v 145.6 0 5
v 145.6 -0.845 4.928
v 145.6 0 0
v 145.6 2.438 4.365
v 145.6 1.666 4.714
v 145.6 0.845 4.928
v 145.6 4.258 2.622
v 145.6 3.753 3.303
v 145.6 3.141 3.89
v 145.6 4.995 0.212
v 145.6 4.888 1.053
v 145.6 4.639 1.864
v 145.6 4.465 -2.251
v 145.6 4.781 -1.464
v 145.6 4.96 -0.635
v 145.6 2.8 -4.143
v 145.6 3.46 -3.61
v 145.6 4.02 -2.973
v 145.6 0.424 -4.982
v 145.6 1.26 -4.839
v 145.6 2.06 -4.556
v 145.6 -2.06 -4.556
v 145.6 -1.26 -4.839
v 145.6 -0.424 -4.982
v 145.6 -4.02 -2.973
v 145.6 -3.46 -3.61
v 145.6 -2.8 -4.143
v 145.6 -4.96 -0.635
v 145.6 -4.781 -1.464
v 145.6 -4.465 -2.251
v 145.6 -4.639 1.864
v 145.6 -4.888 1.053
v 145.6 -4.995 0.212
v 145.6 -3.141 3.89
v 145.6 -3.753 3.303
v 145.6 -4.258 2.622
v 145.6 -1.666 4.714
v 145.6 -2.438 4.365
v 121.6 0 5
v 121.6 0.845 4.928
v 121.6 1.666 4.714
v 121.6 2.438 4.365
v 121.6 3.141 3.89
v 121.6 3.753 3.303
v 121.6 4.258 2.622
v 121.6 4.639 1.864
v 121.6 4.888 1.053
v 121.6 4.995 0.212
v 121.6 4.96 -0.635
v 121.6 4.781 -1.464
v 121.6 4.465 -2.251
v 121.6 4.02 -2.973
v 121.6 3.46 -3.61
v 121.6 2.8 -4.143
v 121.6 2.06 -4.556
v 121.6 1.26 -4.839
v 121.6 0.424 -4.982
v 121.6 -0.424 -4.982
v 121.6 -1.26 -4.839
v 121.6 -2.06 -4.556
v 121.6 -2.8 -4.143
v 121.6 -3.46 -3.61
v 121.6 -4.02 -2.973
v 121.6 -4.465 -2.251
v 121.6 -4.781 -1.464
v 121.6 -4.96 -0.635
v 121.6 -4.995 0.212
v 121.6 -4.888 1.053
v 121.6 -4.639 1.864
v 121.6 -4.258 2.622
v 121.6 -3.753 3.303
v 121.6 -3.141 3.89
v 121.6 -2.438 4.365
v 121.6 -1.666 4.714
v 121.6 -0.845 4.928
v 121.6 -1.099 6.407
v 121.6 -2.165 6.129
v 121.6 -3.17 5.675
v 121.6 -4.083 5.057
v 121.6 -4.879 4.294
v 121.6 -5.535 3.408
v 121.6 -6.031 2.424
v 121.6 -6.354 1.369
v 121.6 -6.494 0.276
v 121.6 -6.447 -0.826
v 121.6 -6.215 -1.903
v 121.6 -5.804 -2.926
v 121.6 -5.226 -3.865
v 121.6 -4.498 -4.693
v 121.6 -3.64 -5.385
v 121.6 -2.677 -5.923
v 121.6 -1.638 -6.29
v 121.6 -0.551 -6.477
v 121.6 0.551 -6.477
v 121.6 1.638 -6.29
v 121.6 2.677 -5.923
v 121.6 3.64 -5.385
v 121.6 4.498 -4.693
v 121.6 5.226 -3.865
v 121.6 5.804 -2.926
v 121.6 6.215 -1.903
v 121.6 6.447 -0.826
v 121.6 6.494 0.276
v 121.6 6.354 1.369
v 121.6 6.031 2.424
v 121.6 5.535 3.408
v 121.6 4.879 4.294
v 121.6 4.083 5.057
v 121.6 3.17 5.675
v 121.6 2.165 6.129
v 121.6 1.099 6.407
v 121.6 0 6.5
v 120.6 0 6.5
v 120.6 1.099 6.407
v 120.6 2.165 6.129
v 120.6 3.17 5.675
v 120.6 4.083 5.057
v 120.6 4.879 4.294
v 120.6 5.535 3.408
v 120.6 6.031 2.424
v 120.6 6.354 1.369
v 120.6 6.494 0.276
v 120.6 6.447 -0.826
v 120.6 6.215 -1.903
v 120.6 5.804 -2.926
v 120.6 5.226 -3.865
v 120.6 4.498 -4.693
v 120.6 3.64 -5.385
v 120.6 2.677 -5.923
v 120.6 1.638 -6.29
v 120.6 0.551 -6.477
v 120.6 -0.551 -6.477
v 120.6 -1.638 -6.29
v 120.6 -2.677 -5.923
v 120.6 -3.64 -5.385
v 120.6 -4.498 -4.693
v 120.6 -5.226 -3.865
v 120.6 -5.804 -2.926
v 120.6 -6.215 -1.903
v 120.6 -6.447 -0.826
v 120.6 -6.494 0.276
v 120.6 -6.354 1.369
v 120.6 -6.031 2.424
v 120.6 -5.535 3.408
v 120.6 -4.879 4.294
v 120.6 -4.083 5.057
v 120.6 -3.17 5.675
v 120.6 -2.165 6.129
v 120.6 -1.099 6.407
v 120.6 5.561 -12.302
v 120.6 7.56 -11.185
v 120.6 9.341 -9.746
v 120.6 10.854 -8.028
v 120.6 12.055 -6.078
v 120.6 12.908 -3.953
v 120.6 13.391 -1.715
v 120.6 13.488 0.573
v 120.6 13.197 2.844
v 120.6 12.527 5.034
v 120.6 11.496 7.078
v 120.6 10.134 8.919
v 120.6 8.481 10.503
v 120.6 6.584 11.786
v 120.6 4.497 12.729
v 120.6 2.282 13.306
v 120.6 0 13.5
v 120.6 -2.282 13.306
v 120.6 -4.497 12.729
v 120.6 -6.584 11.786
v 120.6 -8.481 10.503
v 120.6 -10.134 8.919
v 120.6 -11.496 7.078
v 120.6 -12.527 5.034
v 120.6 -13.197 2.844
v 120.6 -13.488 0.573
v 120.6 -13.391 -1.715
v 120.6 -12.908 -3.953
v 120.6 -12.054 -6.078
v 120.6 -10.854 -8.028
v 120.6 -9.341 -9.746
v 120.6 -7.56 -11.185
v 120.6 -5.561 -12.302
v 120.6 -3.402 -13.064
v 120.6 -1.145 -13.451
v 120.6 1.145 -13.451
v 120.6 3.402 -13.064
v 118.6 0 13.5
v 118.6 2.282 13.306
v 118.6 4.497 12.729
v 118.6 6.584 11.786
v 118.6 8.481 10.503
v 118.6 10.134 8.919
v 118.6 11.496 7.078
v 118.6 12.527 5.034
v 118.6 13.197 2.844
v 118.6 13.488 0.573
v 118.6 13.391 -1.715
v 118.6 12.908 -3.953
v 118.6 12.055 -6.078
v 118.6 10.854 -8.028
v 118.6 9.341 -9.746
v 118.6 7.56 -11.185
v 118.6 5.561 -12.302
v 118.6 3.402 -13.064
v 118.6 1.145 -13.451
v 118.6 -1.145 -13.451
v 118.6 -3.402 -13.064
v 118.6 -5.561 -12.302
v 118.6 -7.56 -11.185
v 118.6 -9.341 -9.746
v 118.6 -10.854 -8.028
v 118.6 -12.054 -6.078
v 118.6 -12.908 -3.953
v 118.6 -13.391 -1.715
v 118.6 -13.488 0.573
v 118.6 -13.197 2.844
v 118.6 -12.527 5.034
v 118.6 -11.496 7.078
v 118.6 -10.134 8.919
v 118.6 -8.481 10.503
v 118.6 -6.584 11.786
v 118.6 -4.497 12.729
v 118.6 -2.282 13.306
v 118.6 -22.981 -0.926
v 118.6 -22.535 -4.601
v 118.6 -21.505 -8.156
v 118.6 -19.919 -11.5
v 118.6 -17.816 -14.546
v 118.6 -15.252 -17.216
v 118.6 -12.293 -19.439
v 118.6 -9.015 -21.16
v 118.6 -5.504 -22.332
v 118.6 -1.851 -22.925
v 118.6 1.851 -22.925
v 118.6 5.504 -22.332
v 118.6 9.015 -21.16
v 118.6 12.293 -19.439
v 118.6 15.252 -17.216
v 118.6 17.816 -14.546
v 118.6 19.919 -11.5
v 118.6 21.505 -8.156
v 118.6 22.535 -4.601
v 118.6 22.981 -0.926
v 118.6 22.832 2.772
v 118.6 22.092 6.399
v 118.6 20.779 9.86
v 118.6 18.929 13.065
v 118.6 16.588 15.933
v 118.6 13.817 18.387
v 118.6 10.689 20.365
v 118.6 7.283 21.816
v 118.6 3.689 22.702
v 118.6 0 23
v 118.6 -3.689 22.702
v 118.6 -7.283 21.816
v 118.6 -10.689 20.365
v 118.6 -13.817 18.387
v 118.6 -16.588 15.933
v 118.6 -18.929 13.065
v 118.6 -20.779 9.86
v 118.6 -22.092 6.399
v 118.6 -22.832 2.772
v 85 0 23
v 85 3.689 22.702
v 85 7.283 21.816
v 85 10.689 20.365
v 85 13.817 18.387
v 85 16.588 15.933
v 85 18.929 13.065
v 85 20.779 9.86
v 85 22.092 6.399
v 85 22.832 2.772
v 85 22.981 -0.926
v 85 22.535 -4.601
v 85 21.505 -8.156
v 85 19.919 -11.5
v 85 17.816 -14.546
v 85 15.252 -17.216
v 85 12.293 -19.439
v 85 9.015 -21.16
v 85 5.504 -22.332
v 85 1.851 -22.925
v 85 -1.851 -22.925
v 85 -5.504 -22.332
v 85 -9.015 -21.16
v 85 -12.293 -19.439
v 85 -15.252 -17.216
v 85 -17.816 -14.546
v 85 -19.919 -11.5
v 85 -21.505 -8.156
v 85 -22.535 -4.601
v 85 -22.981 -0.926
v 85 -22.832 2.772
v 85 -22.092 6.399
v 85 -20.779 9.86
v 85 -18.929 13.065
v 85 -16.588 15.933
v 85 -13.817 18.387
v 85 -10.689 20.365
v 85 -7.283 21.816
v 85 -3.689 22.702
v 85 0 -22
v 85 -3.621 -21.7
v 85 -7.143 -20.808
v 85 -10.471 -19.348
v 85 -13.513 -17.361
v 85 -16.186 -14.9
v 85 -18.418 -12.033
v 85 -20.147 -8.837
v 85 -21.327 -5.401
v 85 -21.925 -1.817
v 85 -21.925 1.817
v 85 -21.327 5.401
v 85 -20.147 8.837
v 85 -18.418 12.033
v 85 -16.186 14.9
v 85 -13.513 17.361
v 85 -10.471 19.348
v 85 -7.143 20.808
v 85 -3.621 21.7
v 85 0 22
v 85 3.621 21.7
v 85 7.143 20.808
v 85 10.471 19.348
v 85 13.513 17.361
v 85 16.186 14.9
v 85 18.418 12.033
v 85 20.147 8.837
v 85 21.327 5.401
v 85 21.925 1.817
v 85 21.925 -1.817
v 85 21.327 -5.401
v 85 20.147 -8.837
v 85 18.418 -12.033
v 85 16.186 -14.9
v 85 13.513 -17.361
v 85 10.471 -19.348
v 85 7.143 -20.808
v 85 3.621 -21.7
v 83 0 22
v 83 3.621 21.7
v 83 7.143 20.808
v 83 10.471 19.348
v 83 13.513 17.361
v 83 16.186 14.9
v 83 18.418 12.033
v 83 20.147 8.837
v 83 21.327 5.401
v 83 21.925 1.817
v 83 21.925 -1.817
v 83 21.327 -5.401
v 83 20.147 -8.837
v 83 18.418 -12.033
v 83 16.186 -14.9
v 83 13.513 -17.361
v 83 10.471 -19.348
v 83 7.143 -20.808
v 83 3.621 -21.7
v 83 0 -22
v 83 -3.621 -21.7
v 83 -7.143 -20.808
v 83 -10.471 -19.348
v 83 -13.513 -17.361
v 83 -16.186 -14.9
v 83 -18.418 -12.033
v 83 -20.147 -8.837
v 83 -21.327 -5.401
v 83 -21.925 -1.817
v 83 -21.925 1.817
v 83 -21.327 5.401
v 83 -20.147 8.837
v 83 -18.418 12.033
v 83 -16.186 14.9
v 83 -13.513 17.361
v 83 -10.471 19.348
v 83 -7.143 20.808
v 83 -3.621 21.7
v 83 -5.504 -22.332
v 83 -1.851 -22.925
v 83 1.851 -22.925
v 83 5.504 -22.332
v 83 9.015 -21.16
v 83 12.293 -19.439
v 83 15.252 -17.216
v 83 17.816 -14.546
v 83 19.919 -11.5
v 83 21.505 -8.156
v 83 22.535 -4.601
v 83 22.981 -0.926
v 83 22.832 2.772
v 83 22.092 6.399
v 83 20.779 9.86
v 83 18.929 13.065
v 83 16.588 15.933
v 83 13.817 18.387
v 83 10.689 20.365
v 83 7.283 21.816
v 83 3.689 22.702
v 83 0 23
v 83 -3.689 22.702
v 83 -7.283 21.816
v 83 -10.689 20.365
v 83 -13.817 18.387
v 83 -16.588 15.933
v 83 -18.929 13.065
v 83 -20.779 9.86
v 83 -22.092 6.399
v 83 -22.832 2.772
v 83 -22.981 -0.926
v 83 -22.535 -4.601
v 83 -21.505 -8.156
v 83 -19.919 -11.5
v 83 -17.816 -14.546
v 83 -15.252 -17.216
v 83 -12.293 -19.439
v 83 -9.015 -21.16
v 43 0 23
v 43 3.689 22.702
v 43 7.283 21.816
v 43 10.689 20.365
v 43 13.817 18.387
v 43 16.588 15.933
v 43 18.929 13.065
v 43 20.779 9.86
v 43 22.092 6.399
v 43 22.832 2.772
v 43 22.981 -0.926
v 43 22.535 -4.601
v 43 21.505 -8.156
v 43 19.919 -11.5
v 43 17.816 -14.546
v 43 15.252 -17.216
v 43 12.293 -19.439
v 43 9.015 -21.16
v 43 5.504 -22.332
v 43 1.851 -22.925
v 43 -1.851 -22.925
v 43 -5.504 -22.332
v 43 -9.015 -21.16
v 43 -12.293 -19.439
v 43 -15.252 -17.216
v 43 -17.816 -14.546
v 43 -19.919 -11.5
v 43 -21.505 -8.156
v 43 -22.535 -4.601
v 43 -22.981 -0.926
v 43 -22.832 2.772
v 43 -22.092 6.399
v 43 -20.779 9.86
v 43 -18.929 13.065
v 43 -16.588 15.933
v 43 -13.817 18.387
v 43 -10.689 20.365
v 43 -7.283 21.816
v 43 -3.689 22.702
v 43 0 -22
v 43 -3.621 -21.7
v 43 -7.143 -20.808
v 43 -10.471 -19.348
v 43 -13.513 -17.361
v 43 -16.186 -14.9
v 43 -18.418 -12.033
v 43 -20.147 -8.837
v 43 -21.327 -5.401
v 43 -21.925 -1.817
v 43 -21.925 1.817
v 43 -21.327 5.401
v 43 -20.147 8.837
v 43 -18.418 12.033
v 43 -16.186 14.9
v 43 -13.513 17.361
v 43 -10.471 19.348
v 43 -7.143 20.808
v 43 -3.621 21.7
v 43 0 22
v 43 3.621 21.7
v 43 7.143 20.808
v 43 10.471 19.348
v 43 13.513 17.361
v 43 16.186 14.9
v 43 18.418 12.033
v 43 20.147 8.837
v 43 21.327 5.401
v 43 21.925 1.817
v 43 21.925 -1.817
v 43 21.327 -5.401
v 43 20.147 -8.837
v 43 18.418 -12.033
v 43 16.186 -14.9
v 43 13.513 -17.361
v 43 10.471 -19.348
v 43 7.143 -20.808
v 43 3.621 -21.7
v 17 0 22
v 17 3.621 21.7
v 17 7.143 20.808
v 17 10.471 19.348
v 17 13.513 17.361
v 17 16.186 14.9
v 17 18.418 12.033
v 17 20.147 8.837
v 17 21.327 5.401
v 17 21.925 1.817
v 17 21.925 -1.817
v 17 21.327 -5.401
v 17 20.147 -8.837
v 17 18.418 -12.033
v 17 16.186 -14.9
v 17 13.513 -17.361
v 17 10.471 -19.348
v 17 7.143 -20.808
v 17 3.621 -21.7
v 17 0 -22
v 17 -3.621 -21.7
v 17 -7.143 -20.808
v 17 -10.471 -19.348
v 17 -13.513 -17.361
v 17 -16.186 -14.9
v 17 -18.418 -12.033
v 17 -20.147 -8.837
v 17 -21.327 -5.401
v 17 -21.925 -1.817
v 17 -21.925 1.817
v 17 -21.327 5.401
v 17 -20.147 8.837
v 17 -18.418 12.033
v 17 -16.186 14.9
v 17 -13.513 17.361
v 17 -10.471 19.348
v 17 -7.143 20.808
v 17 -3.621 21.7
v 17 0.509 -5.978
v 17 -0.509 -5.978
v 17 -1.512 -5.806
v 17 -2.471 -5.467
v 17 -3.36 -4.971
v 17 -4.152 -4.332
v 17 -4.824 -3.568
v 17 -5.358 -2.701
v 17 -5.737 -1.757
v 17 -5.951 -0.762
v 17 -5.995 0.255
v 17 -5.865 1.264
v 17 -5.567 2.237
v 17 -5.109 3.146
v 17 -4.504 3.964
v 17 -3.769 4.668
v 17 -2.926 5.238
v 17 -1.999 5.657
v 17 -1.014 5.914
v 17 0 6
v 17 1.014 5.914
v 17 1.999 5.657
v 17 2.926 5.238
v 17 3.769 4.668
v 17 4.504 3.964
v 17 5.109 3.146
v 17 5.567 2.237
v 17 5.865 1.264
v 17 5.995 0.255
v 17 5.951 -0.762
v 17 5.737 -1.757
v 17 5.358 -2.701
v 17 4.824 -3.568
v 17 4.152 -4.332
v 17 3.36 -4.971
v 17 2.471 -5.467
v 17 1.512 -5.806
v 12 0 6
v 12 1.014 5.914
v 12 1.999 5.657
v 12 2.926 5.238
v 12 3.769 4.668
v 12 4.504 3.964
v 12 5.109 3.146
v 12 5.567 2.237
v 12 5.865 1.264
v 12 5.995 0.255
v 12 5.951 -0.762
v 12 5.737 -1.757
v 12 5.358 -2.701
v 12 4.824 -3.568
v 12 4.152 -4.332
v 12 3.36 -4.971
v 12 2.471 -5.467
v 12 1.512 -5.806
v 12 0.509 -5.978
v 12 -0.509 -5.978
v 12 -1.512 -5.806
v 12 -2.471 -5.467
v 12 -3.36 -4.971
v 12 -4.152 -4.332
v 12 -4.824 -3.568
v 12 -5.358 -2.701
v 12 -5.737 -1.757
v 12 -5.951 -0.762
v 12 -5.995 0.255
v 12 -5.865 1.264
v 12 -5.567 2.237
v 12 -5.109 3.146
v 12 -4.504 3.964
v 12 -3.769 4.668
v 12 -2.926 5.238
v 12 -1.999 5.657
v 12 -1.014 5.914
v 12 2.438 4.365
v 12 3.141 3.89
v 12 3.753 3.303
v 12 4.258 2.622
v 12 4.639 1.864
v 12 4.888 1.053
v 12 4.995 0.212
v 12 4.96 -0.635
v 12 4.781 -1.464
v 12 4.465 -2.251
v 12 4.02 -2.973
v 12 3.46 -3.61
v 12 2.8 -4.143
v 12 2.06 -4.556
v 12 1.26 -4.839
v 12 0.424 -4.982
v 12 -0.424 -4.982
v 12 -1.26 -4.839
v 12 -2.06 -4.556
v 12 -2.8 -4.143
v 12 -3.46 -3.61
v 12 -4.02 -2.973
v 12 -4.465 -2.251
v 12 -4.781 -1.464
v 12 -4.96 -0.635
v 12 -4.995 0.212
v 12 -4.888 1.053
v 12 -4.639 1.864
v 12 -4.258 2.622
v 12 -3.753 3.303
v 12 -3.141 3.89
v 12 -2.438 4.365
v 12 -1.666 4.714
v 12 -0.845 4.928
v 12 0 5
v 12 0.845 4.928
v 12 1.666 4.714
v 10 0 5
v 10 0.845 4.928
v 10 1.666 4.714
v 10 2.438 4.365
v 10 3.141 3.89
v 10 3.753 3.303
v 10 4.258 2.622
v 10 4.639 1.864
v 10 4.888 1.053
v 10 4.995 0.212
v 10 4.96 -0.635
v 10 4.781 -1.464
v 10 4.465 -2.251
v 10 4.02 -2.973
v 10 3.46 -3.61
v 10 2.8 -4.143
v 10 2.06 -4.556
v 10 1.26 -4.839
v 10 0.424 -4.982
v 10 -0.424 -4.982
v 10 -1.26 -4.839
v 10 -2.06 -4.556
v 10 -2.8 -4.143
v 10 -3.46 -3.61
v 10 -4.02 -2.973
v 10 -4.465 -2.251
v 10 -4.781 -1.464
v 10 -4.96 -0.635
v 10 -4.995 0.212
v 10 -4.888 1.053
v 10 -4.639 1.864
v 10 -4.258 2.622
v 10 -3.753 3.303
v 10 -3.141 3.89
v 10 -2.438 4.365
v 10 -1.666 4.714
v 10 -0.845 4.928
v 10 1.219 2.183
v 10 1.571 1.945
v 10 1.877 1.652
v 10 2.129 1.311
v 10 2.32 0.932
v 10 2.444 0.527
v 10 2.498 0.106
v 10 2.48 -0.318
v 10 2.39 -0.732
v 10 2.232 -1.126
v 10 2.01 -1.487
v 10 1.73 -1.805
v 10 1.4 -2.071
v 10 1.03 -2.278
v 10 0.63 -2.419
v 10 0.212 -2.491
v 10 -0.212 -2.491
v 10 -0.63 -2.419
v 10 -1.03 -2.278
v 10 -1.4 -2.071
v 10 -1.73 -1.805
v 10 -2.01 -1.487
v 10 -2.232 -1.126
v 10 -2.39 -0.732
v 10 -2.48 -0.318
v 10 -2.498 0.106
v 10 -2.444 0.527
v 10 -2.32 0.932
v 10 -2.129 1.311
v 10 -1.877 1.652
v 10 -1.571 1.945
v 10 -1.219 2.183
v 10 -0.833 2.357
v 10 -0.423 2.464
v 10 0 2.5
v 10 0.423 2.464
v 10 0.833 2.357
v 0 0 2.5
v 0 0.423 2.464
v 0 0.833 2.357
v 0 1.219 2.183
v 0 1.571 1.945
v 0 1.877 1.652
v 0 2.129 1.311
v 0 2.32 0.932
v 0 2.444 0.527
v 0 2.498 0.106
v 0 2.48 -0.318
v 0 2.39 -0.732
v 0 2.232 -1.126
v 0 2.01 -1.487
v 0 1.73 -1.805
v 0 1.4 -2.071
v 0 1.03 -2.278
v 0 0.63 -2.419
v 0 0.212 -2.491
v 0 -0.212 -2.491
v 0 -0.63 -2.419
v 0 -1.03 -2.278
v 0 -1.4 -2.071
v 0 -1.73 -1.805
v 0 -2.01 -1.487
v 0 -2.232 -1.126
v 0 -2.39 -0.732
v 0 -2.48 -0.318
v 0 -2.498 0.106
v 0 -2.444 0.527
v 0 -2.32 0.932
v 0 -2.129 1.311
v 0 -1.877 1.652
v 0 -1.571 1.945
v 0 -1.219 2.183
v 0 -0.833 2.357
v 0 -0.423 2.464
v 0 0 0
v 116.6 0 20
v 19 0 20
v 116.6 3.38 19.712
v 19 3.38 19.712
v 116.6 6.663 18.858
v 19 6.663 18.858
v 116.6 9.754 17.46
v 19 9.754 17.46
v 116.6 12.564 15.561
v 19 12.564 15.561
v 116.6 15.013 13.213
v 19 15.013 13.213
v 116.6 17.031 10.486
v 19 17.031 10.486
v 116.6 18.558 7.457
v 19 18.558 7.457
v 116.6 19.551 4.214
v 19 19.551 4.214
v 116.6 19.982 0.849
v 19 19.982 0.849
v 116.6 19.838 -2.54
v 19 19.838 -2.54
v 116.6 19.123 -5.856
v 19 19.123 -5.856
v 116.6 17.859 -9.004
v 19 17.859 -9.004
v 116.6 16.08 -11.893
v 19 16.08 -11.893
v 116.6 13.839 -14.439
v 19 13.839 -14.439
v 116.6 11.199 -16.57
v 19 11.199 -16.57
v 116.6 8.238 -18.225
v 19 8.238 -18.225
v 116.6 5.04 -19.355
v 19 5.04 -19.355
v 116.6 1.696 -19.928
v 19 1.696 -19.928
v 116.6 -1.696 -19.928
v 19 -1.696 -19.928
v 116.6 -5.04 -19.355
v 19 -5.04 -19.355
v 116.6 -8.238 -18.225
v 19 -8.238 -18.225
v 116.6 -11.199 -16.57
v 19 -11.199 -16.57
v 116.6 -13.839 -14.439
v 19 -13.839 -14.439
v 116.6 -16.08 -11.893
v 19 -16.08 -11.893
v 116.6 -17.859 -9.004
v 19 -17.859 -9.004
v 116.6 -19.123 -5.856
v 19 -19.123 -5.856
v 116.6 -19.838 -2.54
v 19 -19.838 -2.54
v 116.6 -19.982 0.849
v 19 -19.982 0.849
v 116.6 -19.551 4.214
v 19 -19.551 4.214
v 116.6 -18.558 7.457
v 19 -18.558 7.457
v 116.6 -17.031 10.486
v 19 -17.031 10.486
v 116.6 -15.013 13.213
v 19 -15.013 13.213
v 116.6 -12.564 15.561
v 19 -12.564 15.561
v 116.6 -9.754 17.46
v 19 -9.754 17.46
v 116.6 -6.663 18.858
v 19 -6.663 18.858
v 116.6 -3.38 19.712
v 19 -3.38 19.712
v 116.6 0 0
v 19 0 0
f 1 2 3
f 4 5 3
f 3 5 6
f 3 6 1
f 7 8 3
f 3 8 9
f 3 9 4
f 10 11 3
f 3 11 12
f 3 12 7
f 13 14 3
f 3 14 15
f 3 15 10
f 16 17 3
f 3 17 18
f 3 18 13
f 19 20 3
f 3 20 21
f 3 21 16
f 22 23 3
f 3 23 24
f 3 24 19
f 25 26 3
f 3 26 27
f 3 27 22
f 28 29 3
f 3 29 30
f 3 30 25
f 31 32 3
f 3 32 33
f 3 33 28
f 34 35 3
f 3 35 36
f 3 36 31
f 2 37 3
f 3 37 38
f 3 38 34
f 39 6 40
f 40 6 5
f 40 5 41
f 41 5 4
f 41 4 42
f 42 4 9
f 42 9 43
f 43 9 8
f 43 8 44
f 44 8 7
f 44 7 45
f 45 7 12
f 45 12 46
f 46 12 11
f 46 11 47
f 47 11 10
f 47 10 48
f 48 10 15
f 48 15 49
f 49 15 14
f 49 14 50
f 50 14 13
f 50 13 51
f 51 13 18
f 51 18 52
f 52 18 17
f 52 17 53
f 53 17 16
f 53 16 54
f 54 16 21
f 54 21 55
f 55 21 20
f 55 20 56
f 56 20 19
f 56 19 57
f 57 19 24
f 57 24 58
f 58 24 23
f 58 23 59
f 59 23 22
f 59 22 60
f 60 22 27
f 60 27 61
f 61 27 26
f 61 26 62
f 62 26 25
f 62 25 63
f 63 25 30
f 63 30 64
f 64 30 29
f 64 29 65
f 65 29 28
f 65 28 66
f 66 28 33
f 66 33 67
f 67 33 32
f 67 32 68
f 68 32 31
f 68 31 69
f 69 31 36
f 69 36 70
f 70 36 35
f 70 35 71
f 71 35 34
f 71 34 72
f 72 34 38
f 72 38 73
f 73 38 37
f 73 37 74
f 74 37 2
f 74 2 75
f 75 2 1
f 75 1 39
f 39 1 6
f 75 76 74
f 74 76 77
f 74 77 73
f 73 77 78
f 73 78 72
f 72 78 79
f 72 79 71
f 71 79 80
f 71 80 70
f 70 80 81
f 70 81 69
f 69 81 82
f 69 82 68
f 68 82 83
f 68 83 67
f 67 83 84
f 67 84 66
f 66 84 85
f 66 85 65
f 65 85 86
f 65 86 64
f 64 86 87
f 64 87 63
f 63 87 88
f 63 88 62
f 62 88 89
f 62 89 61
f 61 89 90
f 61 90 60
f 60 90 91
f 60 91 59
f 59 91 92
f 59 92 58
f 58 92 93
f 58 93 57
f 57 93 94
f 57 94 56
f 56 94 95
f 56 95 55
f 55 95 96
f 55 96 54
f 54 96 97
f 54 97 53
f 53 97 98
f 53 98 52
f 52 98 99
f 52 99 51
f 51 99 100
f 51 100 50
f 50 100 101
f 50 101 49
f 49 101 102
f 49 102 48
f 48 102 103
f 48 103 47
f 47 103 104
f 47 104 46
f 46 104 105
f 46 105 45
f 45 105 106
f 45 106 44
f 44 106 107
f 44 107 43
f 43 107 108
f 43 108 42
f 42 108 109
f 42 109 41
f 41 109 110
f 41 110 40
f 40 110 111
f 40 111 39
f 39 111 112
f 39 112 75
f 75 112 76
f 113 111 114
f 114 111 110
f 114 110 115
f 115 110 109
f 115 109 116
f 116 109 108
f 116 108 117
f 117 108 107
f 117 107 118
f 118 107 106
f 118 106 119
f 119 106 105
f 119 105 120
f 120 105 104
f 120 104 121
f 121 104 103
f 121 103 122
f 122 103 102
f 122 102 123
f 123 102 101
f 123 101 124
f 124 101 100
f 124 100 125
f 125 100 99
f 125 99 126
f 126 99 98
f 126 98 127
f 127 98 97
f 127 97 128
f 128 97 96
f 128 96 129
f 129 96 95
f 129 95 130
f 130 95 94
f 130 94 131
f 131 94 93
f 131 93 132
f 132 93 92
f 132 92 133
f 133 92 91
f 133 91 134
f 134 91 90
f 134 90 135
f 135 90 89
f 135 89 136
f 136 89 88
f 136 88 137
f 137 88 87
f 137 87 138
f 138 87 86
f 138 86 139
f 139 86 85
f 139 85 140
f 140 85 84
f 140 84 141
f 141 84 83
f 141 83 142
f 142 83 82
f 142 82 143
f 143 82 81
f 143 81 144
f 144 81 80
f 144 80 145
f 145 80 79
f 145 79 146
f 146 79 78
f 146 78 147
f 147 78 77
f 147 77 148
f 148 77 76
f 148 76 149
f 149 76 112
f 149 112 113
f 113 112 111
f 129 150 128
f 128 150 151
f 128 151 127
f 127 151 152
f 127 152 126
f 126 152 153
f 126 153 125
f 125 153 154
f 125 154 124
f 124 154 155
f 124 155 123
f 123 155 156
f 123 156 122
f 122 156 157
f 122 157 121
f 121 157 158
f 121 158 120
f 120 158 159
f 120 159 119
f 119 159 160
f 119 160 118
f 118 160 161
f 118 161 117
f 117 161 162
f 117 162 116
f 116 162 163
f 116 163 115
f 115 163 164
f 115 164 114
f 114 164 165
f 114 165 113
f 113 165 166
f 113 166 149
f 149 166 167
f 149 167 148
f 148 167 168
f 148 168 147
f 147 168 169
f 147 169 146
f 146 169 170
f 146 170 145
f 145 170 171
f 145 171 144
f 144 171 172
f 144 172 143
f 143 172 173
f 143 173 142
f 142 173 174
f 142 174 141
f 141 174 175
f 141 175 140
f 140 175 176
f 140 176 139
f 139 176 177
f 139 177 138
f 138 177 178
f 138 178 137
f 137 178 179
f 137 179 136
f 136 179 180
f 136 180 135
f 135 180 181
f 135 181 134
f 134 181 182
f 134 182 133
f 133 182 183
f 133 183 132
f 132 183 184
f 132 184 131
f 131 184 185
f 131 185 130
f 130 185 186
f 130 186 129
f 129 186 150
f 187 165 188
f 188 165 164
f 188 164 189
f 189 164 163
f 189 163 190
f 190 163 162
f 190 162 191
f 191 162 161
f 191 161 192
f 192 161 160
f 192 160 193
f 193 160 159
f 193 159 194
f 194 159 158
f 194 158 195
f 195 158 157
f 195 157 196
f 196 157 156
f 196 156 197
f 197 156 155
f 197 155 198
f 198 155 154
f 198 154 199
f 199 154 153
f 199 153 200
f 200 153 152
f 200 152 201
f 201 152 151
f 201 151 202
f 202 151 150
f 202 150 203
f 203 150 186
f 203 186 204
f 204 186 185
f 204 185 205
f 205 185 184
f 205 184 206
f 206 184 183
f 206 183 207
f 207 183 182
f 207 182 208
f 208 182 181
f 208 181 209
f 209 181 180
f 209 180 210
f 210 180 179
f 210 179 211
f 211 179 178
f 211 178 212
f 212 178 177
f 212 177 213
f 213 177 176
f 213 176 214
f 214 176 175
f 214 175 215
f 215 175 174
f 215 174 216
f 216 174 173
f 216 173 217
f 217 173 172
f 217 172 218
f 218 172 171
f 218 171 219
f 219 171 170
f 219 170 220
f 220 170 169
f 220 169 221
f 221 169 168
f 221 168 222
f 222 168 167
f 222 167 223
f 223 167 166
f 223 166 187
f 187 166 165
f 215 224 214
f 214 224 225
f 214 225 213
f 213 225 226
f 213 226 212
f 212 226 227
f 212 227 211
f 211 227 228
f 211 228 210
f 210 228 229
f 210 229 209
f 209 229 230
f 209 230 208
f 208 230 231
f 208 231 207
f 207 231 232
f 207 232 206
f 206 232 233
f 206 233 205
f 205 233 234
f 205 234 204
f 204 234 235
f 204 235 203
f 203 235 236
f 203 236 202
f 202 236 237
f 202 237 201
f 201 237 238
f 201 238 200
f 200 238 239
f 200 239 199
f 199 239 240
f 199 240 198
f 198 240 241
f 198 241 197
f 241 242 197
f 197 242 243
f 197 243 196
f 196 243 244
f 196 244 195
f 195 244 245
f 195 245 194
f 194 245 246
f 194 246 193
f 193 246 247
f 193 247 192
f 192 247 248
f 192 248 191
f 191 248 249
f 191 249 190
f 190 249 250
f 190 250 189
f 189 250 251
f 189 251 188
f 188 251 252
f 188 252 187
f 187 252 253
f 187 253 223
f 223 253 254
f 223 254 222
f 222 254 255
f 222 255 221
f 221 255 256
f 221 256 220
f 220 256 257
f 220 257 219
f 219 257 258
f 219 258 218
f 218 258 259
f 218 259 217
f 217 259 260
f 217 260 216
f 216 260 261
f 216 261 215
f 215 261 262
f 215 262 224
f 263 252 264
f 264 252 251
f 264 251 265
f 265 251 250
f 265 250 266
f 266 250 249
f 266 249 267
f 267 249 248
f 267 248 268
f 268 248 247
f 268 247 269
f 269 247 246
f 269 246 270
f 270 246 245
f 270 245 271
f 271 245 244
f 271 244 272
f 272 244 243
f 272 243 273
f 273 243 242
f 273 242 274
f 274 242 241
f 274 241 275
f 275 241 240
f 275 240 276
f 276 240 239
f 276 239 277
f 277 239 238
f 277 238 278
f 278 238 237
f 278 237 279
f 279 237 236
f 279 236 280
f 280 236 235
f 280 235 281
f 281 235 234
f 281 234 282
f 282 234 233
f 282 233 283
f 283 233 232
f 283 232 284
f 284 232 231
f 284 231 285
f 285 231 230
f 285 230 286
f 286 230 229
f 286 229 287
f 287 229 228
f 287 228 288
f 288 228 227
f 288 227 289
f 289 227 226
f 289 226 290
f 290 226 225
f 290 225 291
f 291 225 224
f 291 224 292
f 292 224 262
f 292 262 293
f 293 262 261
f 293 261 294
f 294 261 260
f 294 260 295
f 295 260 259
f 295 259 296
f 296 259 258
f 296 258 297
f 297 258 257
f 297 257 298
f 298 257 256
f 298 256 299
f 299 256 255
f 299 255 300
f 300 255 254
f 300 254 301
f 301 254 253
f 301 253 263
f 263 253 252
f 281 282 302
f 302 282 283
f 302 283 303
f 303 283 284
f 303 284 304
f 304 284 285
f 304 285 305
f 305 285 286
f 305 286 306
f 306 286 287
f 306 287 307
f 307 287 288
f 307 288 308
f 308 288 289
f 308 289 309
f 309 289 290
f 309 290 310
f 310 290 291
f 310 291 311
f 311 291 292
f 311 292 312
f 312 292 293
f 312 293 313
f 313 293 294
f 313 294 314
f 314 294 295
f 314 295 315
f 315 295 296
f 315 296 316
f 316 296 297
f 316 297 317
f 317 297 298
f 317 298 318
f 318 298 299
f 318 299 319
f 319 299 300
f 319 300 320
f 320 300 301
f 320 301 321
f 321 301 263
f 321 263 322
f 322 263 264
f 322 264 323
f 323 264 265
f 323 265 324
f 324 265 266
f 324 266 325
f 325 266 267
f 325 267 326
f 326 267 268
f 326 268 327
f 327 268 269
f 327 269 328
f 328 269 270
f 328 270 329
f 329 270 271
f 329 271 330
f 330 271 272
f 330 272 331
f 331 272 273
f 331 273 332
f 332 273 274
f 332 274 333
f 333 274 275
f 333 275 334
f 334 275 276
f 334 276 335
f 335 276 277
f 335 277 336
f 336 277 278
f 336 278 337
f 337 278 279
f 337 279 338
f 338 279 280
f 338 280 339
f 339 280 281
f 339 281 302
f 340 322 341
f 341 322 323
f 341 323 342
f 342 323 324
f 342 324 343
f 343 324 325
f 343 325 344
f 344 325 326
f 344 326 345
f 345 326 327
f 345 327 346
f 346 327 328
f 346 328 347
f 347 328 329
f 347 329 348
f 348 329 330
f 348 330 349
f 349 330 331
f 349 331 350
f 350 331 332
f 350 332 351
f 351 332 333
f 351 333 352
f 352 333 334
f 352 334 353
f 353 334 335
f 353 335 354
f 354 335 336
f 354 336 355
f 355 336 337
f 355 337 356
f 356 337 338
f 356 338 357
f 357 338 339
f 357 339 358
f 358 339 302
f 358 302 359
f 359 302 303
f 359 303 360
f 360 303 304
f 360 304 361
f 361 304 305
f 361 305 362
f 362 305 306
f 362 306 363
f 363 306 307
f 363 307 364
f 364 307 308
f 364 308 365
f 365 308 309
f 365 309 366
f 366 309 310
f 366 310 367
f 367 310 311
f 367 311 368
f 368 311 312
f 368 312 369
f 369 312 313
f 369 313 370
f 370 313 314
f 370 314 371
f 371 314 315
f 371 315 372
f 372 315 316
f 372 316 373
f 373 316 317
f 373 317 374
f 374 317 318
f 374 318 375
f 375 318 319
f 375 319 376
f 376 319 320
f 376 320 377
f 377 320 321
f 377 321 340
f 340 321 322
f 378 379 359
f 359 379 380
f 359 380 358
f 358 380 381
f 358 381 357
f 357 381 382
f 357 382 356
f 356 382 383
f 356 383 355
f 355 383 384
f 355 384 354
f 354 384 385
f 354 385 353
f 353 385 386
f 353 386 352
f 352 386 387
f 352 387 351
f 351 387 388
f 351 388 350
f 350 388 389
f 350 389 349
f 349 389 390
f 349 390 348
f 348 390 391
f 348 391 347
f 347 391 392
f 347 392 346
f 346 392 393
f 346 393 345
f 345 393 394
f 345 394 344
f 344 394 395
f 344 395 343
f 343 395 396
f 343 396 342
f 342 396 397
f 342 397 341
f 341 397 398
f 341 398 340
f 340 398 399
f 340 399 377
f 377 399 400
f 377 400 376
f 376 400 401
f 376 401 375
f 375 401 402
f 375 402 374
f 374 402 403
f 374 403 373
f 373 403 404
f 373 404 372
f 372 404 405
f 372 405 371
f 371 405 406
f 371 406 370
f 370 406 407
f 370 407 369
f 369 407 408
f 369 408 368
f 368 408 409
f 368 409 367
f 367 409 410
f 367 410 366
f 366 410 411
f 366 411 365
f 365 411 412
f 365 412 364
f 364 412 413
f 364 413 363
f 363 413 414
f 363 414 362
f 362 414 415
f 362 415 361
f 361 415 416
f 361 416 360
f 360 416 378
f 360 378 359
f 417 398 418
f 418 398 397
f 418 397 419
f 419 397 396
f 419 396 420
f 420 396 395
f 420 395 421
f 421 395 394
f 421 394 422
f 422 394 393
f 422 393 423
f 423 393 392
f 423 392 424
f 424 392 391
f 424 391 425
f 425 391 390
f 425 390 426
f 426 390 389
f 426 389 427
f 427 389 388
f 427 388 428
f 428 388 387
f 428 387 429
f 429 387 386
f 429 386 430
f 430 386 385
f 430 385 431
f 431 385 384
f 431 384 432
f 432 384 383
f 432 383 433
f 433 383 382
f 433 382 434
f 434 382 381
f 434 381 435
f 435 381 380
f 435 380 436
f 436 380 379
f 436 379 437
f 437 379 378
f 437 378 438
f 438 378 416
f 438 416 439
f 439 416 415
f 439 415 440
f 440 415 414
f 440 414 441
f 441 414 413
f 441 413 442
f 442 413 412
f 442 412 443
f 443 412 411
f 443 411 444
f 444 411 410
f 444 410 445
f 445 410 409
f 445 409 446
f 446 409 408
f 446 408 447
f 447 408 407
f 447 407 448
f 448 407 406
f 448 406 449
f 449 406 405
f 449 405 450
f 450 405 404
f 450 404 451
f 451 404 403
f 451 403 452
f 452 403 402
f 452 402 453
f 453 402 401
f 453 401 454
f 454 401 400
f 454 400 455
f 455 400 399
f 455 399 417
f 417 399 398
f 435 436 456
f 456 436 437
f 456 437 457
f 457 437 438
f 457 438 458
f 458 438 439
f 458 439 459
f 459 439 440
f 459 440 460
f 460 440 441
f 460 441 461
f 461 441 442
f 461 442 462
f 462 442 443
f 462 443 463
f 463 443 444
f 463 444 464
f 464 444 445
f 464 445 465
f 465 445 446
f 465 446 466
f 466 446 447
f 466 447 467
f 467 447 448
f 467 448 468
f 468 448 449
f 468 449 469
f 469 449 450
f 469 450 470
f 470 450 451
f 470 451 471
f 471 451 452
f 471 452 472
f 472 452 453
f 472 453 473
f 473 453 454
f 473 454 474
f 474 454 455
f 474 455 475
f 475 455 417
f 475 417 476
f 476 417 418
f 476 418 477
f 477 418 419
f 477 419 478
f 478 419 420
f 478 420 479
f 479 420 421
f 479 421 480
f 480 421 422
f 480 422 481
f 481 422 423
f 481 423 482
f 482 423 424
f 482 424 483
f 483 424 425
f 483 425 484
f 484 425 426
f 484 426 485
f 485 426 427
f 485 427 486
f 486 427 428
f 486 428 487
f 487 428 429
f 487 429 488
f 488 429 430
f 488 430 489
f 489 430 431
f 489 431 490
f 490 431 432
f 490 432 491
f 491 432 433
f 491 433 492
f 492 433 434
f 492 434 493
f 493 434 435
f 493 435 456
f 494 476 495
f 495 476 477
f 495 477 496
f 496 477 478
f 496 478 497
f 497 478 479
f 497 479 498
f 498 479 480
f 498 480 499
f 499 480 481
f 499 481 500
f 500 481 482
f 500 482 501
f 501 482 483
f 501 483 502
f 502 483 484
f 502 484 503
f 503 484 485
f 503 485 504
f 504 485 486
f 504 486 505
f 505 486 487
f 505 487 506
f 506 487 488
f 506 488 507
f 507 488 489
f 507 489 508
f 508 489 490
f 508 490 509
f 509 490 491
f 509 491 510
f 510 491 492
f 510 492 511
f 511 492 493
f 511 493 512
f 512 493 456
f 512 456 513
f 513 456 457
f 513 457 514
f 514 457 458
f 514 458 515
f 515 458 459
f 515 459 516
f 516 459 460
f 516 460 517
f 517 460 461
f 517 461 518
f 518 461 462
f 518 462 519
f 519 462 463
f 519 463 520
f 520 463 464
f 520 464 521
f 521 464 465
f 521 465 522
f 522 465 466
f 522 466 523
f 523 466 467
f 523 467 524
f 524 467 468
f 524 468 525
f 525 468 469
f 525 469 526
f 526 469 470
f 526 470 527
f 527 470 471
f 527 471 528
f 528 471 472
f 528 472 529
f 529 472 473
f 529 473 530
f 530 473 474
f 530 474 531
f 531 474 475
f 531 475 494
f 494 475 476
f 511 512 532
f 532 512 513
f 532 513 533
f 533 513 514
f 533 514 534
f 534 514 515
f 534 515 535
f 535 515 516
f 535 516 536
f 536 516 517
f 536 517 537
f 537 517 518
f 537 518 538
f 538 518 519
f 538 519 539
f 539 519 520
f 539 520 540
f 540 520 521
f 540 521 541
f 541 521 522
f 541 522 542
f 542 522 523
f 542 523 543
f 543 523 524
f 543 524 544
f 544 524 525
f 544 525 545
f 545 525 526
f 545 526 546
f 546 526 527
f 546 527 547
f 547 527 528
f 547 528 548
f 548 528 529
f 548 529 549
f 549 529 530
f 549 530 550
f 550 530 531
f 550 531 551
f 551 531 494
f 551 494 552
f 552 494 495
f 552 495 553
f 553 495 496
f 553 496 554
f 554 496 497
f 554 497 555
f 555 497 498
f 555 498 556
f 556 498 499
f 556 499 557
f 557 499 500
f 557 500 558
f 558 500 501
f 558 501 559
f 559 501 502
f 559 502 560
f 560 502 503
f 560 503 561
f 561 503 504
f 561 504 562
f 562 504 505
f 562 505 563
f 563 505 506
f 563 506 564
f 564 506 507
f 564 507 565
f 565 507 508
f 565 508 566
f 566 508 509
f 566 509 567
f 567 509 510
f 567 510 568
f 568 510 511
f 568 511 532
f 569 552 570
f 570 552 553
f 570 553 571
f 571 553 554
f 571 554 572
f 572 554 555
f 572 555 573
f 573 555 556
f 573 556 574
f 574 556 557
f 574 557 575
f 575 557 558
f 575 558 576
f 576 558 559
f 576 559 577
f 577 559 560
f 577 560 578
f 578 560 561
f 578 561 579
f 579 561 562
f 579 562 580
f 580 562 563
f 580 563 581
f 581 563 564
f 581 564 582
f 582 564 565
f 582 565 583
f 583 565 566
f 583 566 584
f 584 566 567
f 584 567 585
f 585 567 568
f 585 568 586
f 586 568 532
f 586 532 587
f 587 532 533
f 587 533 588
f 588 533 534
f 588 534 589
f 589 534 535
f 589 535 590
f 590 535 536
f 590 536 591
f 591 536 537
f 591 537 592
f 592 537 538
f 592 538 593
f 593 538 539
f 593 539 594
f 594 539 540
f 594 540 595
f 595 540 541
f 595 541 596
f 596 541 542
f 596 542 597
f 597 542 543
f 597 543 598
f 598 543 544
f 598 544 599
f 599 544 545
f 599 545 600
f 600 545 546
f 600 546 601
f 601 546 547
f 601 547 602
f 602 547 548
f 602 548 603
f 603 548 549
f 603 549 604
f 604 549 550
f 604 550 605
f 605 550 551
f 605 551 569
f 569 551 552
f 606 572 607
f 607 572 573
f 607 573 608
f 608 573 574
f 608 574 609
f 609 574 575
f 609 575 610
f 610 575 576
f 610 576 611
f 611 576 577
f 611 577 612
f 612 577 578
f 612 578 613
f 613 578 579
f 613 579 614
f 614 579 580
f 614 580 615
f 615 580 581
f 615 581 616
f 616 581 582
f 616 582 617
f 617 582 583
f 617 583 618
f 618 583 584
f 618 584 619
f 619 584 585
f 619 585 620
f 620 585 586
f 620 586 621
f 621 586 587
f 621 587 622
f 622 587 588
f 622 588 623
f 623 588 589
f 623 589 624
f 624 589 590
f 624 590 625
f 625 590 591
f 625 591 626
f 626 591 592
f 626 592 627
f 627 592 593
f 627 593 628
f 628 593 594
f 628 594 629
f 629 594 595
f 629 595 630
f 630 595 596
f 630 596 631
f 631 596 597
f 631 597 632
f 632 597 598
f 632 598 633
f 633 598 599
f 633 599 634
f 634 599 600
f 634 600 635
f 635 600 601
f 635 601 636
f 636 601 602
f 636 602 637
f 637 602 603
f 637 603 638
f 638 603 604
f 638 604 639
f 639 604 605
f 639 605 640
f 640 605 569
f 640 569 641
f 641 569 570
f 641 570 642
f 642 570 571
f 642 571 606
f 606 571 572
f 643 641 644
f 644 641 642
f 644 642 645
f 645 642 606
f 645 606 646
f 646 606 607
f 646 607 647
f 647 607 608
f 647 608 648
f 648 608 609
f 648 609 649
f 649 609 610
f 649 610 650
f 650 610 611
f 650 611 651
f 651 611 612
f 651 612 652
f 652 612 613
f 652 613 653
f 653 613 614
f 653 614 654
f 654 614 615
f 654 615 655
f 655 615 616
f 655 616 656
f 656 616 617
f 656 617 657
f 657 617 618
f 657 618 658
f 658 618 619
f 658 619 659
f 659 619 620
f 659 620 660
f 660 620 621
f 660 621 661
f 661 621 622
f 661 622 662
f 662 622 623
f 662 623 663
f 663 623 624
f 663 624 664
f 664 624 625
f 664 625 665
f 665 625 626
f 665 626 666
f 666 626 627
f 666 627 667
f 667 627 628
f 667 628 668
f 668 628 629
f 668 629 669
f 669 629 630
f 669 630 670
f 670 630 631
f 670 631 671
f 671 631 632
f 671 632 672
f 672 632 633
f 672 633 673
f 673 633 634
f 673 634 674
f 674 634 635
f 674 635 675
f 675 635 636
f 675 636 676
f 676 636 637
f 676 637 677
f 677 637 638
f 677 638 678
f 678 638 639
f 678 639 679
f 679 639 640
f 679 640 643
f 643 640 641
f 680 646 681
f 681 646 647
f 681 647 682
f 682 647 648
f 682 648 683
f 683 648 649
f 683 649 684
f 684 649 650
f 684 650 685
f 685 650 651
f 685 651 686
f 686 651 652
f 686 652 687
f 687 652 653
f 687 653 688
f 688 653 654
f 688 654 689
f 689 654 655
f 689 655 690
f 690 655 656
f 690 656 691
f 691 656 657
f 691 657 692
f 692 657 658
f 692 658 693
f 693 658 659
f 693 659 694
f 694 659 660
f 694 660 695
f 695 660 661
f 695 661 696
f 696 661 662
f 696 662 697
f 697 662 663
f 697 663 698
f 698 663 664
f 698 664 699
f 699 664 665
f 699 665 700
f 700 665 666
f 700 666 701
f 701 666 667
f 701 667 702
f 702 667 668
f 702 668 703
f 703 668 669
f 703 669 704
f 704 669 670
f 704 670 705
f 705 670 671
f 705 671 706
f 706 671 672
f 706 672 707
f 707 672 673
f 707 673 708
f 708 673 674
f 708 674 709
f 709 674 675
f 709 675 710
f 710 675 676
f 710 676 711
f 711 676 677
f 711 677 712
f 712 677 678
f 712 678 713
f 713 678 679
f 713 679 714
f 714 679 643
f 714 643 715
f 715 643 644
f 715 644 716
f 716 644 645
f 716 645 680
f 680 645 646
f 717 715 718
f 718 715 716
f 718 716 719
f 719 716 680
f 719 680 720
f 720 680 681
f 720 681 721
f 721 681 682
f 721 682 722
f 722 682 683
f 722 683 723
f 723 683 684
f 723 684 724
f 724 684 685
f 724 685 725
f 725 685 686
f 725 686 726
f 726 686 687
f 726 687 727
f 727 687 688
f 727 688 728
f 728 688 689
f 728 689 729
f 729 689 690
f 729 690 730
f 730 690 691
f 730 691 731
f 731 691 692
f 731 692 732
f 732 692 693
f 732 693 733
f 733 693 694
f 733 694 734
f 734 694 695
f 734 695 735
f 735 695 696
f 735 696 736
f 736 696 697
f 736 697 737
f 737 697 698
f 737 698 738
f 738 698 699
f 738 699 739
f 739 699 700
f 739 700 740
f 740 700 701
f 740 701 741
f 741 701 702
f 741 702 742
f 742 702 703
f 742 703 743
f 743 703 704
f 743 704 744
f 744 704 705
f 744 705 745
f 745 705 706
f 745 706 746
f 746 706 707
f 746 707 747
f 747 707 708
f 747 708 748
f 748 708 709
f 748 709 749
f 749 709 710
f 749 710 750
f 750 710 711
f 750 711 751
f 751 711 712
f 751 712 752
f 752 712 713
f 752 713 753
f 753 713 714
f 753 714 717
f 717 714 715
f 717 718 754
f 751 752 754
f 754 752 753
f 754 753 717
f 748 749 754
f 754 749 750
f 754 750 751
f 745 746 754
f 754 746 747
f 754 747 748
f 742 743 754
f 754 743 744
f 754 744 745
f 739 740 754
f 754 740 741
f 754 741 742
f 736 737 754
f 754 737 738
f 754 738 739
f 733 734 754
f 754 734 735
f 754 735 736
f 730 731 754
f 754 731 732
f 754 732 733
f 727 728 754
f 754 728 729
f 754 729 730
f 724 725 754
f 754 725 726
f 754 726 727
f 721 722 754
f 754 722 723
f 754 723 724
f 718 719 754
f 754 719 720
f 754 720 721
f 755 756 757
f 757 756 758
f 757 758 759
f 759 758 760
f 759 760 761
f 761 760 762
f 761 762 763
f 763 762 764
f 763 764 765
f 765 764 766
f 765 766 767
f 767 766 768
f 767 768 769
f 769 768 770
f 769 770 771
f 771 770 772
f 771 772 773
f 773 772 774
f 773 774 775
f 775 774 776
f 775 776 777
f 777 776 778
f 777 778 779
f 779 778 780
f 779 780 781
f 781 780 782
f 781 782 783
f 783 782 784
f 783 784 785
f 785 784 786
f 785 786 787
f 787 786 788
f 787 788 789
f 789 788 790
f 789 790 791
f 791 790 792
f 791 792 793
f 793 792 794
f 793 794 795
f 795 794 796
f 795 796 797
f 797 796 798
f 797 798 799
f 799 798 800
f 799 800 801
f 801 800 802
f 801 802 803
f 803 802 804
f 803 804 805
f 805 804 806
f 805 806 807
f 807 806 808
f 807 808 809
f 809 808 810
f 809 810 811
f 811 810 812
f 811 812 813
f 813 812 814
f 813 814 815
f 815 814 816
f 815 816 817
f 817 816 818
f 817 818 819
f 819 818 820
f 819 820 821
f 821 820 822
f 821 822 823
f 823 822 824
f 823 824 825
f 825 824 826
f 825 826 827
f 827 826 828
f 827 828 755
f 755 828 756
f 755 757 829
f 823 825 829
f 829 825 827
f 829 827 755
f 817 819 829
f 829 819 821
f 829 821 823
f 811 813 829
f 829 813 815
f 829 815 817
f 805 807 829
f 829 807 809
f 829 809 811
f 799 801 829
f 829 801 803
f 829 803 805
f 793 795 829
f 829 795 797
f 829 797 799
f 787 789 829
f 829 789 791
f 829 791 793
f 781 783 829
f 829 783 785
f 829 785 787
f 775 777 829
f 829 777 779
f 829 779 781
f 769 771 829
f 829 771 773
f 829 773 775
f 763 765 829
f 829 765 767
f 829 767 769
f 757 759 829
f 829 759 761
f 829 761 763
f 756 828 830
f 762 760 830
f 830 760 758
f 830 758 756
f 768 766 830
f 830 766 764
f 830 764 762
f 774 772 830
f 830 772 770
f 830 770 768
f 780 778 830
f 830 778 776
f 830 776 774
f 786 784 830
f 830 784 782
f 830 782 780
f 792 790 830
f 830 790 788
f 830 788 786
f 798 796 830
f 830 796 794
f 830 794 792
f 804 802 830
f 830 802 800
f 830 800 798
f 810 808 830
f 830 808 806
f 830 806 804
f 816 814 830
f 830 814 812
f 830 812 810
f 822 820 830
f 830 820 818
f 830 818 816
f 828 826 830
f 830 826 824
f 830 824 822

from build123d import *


with BuildPart() as part:
    # Sketch1 → Revolve1 (revolve)
    with BuildSketch(Plane(origin=(0, 0, 0), x_dir=(1, 0, 0), z_dir=(0, 1, 0)), mode=Mode.PRIVATE) as revolve1_sk:
        Polygon((0, 2.5), (0, 0), (19, 0), (19, 20), (116.6, 20), (116.6, 0), (145.6, 0), (145.6, 5), (121.6, 5), (121.6, 6.5), (120.6, 6.5), (120.6, 13.5), (118.6, 13.5), (118.6, 23), (85, 23), (85, 22), (83, 22), (83, 23), (43, 23), (43, 22), (19, 22), (17, 22), (17, 6), (12, 6), (12, 5), (10, 5), (10, 2.5), align=None)
    revolve(revolve1_sk.sketch.rotate(Axis((0, 0, 0), (1, 0, 0)), 180), axis=Axis((0, 0, 0), (1, 0, 0)))


solid = part.part
